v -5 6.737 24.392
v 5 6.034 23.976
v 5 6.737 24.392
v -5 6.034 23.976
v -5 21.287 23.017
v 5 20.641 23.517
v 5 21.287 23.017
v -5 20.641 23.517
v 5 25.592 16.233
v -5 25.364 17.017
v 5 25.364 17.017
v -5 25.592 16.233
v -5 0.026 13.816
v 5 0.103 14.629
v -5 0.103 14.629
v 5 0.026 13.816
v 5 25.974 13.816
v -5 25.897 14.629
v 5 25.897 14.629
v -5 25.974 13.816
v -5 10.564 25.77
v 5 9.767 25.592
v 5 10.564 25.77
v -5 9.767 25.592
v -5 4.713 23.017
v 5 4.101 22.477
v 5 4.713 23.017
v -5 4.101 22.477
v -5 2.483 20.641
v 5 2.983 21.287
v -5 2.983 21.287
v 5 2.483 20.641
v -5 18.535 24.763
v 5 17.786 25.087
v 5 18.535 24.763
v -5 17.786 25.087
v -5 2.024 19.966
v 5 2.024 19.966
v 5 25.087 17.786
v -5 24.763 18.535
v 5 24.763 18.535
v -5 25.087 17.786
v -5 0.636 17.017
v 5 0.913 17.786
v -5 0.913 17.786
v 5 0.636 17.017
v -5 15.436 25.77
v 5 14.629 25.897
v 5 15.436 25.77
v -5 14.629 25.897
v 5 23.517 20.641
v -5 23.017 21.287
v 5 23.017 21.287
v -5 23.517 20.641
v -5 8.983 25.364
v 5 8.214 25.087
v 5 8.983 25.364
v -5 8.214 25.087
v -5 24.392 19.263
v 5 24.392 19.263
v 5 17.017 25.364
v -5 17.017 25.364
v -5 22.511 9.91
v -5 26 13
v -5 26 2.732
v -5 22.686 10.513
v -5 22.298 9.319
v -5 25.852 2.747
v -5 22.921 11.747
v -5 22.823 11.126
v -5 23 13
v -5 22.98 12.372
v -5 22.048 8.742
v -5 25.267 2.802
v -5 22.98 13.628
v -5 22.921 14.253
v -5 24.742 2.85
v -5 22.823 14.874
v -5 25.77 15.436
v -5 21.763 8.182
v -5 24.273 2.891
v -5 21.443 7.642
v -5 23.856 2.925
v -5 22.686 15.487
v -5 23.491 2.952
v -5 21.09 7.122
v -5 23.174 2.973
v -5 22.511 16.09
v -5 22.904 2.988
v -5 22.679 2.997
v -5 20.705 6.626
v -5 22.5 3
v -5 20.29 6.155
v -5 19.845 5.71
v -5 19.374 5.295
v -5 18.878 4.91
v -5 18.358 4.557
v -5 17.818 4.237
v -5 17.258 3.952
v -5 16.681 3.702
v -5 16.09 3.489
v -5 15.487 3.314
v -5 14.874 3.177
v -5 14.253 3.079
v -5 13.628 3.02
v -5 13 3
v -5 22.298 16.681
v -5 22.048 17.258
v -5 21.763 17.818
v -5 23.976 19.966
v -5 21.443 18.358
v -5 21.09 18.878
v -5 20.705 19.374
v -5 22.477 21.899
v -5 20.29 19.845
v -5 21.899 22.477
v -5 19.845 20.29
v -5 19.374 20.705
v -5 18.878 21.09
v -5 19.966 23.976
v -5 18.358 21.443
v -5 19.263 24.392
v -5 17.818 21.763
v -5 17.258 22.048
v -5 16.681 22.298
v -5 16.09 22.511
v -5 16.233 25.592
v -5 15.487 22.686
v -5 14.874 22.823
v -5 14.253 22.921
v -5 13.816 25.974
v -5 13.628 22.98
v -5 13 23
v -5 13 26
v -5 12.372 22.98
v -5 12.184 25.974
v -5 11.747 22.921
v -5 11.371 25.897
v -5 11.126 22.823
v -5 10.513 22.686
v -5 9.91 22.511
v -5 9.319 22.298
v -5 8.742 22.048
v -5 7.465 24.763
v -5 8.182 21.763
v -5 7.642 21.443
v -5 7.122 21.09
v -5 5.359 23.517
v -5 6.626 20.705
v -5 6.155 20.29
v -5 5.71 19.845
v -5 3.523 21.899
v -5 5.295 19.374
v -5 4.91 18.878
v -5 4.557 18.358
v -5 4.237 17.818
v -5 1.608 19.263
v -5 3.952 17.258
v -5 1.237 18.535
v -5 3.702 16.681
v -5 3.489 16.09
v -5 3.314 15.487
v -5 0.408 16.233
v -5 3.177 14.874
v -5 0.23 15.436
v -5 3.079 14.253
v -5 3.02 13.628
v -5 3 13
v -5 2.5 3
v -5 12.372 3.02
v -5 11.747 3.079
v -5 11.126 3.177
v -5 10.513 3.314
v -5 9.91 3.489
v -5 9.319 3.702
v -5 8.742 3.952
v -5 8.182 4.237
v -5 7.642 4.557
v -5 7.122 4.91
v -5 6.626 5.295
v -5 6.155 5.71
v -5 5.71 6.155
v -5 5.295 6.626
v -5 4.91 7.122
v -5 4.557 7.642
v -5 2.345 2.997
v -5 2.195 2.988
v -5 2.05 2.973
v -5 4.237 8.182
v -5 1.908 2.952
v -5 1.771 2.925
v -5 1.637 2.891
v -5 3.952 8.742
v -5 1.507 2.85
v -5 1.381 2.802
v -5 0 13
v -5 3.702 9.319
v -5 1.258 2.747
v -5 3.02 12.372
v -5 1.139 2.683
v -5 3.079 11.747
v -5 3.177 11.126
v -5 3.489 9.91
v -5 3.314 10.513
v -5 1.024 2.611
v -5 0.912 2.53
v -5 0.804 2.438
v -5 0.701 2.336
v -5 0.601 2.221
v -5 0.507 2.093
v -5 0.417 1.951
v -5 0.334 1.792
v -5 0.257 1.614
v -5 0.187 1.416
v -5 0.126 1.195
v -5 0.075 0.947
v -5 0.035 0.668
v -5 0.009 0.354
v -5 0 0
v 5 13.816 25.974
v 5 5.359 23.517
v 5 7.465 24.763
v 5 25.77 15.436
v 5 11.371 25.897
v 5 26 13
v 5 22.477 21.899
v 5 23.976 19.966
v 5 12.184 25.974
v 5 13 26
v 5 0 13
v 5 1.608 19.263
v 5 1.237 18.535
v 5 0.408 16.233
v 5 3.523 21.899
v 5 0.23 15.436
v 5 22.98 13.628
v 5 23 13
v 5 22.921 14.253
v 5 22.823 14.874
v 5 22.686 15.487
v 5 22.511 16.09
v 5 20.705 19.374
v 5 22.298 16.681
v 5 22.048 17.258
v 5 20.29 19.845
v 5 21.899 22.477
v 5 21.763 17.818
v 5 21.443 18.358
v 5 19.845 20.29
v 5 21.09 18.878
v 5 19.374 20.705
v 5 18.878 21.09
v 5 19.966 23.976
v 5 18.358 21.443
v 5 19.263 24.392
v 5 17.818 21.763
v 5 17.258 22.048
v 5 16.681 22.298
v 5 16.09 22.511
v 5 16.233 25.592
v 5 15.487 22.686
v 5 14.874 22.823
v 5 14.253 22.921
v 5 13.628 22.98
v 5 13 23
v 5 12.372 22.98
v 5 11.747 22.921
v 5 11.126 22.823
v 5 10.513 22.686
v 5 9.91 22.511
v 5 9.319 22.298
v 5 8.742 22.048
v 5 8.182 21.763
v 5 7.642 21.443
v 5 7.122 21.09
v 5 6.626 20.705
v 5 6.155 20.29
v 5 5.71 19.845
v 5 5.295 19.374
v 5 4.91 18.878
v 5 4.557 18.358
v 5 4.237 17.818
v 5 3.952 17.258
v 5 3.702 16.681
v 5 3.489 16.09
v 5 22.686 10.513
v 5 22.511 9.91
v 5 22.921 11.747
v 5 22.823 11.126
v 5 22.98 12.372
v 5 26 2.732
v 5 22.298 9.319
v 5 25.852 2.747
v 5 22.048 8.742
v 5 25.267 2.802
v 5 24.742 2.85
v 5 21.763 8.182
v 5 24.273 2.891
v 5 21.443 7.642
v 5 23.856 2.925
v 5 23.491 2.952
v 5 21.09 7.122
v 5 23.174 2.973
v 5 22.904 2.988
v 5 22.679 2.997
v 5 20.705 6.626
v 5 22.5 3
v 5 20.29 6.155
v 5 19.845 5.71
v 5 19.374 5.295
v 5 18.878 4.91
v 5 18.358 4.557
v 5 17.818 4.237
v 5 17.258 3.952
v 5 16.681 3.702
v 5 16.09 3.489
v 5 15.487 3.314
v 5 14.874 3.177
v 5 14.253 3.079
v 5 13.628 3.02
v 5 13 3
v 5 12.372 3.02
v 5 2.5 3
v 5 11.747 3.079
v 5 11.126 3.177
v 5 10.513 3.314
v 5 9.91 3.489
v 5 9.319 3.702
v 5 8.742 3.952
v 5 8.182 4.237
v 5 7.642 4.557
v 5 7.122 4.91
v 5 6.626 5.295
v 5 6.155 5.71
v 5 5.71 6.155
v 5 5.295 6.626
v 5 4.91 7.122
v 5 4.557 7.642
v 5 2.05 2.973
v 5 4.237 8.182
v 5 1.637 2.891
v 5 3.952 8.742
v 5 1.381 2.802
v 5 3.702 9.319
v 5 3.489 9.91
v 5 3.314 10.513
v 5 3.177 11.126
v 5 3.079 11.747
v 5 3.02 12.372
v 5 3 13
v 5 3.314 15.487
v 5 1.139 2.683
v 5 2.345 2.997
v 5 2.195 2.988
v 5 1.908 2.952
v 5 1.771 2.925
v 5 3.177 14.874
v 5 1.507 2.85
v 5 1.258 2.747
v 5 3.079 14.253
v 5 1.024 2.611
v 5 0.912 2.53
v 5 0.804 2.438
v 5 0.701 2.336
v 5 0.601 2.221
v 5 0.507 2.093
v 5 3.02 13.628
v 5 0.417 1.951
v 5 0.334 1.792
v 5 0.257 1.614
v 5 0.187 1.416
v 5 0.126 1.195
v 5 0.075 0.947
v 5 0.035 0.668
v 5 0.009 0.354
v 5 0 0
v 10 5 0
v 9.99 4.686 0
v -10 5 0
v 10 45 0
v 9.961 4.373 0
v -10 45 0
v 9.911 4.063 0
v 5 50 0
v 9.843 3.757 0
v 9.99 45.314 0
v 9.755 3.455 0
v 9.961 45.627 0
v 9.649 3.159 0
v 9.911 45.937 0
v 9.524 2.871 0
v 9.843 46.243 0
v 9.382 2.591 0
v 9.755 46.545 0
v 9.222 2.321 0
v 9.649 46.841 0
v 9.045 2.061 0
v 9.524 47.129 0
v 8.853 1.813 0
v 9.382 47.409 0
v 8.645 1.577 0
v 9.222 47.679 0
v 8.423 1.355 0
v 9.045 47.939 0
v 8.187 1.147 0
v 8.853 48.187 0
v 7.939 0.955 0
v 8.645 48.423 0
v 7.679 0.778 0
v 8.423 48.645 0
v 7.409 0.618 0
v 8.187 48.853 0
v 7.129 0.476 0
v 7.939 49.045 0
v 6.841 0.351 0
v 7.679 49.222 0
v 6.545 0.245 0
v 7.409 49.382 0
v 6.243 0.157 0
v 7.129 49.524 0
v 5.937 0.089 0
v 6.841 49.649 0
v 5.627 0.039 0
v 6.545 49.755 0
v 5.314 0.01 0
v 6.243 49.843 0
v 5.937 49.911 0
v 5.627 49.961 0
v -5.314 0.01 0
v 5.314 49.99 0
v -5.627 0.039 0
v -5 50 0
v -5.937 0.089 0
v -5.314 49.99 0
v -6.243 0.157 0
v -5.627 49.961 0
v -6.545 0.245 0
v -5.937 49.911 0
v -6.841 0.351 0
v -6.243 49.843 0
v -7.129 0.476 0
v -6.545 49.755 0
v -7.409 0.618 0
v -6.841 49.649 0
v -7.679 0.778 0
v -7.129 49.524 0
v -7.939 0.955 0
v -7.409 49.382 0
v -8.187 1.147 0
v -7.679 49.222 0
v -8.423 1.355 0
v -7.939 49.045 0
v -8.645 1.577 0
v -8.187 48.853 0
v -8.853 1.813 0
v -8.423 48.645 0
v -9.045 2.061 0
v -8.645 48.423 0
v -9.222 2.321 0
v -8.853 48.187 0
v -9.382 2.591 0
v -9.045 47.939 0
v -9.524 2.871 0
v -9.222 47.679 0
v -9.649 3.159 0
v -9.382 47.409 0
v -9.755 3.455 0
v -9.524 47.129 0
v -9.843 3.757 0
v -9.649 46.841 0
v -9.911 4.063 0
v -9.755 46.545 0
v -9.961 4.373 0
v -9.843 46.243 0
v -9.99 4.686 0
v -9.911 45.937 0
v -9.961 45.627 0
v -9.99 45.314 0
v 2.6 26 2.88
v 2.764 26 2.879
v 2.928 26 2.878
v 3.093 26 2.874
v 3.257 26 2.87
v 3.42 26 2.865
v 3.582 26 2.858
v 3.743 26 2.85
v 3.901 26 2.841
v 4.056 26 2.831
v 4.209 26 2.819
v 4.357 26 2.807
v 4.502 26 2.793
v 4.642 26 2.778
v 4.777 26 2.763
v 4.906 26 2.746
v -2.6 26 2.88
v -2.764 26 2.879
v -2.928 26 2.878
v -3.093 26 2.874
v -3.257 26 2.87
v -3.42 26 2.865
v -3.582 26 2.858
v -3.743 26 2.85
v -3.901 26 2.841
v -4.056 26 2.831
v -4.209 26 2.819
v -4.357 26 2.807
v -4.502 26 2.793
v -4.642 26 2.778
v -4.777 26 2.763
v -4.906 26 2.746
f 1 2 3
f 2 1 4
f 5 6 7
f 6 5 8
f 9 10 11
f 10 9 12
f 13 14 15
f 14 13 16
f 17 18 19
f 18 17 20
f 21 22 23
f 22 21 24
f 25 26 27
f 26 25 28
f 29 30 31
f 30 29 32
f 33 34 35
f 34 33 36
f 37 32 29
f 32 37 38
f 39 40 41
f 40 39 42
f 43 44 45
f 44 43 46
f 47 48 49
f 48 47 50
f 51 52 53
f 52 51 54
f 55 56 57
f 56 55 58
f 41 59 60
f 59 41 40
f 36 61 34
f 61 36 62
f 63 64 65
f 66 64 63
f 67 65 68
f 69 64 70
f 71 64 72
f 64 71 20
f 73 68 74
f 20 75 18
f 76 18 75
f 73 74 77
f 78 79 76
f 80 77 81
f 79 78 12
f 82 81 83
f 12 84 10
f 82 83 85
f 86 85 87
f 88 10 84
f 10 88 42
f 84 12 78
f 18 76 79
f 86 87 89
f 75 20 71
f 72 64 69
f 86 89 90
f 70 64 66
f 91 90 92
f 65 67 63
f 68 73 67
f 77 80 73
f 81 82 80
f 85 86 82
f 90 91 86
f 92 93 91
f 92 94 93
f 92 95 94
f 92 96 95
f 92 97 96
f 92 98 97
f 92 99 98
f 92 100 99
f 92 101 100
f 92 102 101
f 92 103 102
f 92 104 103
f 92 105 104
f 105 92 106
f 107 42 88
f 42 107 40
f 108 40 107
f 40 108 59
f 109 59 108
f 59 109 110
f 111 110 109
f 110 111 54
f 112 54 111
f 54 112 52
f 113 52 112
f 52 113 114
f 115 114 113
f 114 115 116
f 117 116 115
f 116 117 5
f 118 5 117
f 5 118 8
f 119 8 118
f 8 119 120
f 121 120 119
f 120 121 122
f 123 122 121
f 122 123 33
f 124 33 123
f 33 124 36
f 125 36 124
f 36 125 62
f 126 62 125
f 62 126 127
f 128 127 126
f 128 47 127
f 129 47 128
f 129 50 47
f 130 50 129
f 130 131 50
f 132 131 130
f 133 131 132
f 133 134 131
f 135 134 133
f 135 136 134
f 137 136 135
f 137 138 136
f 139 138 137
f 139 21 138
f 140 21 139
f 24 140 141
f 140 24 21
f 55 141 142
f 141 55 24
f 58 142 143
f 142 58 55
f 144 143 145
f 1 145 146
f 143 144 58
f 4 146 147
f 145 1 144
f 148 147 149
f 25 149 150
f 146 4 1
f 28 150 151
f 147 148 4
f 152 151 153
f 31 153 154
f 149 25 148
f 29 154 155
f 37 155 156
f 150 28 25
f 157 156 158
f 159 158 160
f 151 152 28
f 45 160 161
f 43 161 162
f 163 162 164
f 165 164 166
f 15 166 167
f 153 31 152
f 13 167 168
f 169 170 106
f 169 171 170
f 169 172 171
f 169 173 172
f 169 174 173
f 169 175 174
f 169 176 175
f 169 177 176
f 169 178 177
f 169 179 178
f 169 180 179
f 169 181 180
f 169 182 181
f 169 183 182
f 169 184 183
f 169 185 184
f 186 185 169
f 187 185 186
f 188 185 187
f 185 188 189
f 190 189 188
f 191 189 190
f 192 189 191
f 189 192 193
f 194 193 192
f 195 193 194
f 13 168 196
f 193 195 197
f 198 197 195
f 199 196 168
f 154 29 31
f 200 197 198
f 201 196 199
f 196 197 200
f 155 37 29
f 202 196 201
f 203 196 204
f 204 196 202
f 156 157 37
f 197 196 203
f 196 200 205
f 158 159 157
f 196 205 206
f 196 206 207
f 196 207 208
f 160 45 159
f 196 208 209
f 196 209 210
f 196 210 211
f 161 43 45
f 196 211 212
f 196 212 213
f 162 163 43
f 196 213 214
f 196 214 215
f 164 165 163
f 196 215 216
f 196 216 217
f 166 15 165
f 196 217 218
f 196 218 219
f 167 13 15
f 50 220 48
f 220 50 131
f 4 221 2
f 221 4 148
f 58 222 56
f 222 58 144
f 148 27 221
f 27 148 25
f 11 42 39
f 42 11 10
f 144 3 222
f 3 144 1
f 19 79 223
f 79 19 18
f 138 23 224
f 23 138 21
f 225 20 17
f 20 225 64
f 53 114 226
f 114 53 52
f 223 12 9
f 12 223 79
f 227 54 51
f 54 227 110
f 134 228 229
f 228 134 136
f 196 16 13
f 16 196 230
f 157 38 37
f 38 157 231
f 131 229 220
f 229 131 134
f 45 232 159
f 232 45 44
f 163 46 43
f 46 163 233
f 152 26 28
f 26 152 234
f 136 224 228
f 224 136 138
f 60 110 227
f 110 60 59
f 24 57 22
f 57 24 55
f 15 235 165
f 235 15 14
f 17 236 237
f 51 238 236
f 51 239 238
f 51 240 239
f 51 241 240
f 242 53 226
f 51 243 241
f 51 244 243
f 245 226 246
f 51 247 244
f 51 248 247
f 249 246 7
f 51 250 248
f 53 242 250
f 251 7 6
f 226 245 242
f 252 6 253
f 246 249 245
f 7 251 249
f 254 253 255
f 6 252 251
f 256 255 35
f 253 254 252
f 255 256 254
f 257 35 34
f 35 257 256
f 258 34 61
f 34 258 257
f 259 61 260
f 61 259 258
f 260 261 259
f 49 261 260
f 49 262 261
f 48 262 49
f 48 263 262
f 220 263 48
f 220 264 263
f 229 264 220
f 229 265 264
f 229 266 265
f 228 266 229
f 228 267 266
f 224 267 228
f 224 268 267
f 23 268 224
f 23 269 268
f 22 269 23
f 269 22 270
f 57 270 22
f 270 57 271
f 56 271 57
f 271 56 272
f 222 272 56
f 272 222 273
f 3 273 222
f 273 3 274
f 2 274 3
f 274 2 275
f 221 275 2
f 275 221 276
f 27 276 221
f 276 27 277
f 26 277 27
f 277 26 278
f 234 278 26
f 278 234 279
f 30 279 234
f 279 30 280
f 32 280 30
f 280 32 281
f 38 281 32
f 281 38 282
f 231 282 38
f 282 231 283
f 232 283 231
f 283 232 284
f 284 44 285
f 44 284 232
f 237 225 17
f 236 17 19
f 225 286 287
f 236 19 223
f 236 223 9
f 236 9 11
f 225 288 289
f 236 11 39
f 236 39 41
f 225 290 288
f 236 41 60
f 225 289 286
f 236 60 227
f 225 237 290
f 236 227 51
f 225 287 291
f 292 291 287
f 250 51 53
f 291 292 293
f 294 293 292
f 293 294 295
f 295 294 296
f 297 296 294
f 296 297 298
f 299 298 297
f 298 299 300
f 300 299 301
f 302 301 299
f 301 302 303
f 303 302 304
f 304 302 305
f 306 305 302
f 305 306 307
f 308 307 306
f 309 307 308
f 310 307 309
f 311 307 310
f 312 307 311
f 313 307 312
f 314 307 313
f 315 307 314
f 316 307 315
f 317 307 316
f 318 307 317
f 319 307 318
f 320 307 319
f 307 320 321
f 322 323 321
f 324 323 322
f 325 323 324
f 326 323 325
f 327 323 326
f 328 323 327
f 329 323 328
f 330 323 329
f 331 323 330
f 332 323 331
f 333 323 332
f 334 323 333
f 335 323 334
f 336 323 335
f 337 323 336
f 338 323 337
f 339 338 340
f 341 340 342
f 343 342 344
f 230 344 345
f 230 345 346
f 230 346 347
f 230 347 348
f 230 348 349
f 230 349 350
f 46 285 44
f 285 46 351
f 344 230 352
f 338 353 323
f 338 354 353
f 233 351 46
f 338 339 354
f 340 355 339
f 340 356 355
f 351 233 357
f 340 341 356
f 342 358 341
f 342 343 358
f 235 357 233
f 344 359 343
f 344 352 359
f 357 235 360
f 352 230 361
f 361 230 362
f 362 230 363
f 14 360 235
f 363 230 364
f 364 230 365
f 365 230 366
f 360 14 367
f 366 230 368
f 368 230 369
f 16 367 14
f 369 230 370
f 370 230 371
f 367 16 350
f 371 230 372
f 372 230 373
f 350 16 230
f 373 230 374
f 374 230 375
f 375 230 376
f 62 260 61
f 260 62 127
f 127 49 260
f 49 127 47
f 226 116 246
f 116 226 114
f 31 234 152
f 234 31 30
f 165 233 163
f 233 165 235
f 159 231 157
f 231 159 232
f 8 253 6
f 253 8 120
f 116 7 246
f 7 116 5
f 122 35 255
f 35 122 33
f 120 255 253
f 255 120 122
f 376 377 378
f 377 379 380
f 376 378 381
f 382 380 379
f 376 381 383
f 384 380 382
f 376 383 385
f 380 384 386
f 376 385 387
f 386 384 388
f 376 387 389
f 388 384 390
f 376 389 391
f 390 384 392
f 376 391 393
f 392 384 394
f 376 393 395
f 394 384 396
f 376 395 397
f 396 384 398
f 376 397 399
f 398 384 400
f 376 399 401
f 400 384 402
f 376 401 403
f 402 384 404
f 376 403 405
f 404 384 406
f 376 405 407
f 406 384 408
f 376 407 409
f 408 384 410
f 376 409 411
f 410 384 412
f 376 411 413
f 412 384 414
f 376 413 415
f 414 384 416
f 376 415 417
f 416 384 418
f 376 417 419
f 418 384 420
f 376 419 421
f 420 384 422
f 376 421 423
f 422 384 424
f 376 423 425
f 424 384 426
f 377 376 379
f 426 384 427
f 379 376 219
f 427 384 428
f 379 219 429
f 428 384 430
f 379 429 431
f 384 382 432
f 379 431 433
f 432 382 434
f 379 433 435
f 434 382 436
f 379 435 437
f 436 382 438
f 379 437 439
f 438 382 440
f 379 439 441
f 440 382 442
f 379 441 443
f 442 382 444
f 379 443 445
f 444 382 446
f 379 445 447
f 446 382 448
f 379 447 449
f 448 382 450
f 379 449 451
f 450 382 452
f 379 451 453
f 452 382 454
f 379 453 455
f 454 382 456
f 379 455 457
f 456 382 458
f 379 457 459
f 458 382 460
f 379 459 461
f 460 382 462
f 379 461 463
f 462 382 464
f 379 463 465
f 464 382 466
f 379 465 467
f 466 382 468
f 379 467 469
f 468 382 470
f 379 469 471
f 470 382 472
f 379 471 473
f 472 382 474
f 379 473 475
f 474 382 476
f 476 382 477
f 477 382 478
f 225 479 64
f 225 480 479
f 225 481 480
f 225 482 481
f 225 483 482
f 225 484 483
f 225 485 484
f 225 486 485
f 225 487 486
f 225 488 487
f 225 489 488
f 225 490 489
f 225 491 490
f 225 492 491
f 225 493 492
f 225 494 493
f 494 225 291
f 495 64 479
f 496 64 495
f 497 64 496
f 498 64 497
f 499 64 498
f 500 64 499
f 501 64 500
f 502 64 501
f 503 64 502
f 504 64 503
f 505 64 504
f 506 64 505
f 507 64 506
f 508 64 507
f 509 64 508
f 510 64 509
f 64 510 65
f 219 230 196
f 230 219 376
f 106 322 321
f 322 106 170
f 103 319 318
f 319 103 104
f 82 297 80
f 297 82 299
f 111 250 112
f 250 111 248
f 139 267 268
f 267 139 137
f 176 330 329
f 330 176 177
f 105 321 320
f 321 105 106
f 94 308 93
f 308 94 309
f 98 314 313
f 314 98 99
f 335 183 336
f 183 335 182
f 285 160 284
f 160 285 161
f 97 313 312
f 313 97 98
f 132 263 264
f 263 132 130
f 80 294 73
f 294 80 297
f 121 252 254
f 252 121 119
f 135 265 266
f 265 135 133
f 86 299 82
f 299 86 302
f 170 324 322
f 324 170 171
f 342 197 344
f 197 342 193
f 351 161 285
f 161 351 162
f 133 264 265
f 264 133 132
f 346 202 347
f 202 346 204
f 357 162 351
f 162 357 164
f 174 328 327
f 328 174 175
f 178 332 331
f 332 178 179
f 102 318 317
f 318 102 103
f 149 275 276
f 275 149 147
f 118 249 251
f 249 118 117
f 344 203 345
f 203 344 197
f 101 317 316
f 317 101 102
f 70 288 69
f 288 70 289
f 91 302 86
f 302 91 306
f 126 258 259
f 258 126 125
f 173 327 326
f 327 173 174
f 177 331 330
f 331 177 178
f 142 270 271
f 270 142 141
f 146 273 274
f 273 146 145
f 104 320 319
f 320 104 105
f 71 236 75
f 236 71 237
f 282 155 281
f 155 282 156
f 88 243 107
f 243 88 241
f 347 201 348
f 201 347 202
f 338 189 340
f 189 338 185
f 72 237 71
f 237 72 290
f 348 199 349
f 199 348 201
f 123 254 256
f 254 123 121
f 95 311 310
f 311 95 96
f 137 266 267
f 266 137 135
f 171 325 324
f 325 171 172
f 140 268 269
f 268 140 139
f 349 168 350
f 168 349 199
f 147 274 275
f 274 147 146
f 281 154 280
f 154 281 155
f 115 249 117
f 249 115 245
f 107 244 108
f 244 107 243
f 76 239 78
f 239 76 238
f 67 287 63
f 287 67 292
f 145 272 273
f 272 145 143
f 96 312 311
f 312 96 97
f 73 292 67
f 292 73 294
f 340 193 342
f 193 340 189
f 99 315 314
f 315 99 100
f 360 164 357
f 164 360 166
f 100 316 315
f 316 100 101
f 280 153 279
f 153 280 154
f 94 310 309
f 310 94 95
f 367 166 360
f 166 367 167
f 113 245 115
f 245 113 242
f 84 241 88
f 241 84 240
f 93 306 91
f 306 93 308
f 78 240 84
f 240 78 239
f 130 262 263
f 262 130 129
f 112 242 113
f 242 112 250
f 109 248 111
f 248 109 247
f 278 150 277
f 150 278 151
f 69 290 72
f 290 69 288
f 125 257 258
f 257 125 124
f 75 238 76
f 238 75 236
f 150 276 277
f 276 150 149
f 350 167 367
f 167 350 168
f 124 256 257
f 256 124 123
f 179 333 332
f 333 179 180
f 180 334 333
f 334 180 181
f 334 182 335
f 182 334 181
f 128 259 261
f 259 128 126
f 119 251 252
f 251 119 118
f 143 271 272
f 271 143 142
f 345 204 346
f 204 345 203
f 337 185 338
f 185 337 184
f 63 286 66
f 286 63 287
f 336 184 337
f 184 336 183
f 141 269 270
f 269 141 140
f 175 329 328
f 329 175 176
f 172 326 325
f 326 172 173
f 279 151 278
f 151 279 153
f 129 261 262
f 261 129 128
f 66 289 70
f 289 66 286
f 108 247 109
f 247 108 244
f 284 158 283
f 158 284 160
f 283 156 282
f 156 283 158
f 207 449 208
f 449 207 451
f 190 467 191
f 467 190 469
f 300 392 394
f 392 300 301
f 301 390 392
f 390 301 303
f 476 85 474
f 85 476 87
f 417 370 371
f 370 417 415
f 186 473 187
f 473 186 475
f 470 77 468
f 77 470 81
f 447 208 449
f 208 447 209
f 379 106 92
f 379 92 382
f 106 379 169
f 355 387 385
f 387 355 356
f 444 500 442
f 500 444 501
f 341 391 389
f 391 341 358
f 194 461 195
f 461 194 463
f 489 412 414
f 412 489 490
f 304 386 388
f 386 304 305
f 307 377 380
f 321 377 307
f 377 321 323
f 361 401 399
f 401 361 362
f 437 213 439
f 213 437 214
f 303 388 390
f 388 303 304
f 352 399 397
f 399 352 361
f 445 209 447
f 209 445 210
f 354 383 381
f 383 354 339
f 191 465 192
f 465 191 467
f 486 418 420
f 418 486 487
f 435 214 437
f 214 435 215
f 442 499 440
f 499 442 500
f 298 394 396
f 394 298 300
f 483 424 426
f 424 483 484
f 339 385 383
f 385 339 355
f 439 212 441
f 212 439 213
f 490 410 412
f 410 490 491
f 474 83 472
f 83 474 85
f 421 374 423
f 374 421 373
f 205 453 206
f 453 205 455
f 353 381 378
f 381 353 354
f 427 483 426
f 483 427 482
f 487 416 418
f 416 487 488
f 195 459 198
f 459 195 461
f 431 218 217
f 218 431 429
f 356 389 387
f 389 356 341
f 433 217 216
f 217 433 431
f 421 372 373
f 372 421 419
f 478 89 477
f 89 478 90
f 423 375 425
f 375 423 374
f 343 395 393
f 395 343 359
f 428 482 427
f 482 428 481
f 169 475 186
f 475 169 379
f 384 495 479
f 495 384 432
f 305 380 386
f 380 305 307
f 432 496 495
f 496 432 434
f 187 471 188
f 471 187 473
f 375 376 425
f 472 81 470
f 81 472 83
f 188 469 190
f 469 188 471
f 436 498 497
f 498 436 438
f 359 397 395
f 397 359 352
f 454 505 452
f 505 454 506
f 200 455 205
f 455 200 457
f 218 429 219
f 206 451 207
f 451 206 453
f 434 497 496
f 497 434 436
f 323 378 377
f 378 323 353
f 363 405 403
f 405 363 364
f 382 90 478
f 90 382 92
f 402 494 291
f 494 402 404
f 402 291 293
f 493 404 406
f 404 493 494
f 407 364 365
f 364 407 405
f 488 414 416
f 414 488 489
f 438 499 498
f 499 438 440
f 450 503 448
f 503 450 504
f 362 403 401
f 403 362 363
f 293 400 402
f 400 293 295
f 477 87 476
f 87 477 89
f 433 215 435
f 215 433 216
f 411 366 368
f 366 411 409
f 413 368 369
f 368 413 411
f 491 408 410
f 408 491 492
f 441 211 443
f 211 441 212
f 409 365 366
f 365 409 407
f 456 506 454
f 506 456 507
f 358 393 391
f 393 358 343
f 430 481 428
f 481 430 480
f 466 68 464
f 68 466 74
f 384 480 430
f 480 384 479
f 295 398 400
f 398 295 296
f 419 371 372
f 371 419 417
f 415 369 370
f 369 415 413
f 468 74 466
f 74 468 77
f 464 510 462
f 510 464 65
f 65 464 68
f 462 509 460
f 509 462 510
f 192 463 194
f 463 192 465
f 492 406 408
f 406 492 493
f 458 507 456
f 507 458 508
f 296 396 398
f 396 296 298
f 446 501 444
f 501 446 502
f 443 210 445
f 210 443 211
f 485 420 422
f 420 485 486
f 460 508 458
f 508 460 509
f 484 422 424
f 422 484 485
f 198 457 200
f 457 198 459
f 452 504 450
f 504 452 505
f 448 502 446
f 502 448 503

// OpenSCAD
hole_size=20;
thickness=3;
$fn=100;


linear_extrude(height=thickness, scale=0.5) translate([-5, 5]) minkowski() {
    square([10, 40]);
    circle(r=5);
}

translate([-5, hole_size/2+thickness, hole_size/2+thickness]) rotate([0, 90, 0]) difference() {
    union() {
        cylinder(d=hole_size+2*thickness, h=10);
        translate([0, -hole_size/2-thickness, 0]) cube([hole_size/2+thickness, hole_size+2*thickness,10]);
    }

    translate([0, 0, -1]) cylinder(d=hole_size, h=12);
}
